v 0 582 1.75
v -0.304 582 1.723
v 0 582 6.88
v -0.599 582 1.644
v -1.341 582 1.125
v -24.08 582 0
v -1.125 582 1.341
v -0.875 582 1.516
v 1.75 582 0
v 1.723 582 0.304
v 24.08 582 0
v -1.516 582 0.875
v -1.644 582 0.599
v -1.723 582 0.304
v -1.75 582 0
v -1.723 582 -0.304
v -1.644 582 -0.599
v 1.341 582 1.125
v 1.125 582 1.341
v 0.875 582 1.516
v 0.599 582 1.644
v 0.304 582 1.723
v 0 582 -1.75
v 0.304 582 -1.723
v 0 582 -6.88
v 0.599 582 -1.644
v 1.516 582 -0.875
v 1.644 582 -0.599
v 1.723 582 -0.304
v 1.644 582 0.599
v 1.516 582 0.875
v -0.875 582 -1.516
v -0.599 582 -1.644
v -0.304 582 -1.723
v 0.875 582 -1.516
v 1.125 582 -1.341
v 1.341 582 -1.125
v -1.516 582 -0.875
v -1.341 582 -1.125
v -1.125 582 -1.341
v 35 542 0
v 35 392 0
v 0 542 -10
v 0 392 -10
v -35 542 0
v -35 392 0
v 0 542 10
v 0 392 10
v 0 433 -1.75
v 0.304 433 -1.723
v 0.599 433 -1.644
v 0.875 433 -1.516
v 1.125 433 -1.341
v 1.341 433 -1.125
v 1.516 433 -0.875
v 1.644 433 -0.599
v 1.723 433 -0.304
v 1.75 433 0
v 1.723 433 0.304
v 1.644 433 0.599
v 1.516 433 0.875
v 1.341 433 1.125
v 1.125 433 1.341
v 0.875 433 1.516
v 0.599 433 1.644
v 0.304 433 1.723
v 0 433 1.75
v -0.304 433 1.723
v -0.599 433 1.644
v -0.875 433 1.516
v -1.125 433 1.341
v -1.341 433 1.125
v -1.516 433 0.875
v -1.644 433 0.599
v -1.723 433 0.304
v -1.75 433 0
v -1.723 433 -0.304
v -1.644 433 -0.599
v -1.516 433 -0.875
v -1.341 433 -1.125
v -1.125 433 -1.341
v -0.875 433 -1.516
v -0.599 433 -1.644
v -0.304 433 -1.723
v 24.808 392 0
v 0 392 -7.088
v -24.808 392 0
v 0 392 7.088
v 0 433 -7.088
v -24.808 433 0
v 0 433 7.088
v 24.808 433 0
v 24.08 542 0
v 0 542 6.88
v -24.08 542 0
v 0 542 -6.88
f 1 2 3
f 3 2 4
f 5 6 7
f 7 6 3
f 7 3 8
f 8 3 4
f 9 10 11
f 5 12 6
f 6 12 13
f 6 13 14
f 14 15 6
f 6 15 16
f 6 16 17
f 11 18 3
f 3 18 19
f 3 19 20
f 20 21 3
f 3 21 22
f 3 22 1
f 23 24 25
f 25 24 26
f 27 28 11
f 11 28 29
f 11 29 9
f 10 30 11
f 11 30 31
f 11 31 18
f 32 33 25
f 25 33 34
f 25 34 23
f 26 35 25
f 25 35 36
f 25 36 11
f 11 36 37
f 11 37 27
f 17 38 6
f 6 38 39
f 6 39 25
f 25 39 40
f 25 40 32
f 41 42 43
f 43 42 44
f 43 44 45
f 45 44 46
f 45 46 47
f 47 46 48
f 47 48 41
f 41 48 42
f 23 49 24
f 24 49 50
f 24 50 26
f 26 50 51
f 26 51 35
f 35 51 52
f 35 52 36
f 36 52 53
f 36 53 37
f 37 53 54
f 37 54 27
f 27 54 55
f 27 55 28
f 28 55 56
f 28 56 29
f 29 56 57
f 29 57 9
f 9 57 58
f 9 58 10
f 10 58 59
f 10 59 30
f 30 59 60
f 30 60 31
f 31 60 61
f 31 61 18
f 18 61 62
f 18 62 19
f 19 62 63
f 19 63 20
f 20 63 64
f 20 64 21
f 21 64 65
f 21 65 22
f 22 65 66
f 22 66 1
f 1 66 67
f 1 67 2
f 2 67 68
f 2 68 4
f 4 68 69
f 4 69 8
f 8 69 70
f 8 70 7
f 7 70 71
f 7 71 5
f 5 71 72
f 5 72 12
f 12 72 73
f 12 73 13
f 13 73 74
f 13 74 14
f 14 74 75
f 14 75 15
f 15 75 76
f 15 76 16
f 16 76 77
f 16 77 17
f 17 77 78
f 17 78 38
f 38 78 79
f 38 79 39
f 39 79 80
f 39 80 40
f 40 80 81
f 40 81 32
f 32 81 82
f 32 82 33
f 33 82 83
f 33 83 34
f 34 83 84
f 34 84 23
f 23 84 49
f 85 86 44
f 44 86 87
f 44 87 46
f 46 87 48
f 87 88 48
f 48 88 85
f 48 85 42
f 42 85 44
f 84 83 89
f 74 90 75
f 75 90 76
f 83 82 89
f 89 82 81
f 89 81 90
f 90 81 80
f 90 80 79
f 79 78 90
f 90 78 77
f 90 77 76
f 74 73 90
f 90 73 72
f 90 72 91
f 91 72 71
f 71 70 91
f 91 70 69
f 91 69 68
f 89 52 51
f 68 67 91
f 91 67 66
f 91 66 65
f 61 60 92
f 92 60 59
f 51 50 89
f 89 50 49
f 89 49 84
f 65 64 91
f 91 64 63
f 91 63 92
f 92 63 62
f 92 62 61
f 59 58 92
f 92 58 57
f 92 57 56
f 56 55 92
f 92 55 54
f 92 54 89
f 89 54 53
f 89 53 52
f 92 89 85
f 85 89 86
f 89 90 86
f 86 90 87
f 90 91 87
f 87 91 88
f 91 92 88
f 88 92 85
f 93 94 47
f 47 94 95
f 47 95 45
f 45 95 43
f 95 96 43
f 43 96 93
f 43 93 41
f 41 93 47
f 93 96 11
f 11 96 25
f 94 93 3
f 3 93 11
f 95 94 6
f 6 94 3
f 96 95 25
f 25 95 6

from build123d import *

# Parameters (mm, degrees)
SWEEP_1_DEPTH            = 610
CUT_EXTRUDE_2_DEPTH      = 12
SKETCH_21_R              = 1.75
CUT_EXTRUDE_3_DEPTH      = 600
CUT_EXTRUDE_4_DEPTH      = 691.959477934
CUT_EXTRUDE_4_DEPTH_BACK = 691.959477934
SKETCH_26_OUTSIDE_W      = 208.38
SKETCH_26_OUTSIDE_H      = 816.38
SKETCH_26_OUTSIDE_W_2    = 70
SKETCH_26_OUTSIDE_H_2    = 190
CUT_EXTRUDE_5_DEPTH      = 41
SKETCH_28_OUTSIDE_W      = 112.694
SKETCH_28_OUTSIDE_H      = 62.694
CUT_EXTRUDE_7_DEPTH      = 40


# Read off the part's stored shape, not the designer's step: 扫描1
with BuildPart() as part:
    # 扫描1 outline → 扫描1 (new body)
    with BuildSketch(Plane(origin=(0, 0, 0), x_dir=(1, 0, 0), z_dir=(0, 1, 0))):
        Polygon((-35, 0), (35, 0), (0, 10), align=None)
    sweep_1 = extrude(amount=SWEEP_1_DEPTH)

    # 草图1 → 放样1 section 0
    with BuildSketch(Plane.XY, mode=Mode.PRIVATE) as loft_1_s0:
        with BuildLine():
            Line((-35, 610), (0, 690))
            Line((0, 690), (35, 610))
            Line((35, 610), (-35, 610))
        make_face()
    loft_1 = loft([Vertex(0, 610, -10), loft_1_s0.sketch])

    # 镜向1: 扫描1, 放样1 across plane
    add(sweep_1.mirror(Plane.XY))
    add(loft_1.mirror(Plane.XY))

    # 草图19 → 切除-拉伸2 (cut)
    with BuildSketch(Plane.XZ):
        Polygon((0, -10), (35, 0), (0, 10), (-35, 0), align=None)
    extrude(amount=-CUT_EXTRUDE_2_DEPTH, mode=Mode.SUBTRACT)

    # 草图21 → 切除-拉伸3 (cut)
    with BuildSketch(Plane.XZ.offset(-12)):
        with Locations(Location((0, 0, 0), (0, 0, 270))):
            Circle(SKETCH_21_R)
    extrude(amount=-CUT_EXTRUDE_3_DEPTH, mode=Mode.SUBTRACT)

    # 草图26 outside → 切除-拉伸4 (cut, two sides: drawn at the far end of the back side and taken through both)
    with BuildSketch(Plane.XY.offset(-CUT_EXTRUDE_4_DEPTH_BACK)):
        with Locations((0, 351)):
            Rectangle(SKETCH_26_OUTSIDE_W, SKETCH_26_OUTSIDE_H)
        with Locations((0, 487)):
            Rectangle(SKETCH_26_OUTSIDE_W_2, SKETCH_26_OUTSIDE_H_2, mode=Mode.SUBTRACT)
    extrude(amount=CUT_EXTRUDE_4_DEPTH + CUT_EXTRUDE_4_DEPTH_BACK, mode=Mode.SUBTRACT)

    # 草图27 → 切除-拉伸5 (cut)
    with BuildSketch(Plane.XZ.offset(-392)):
        Polygon((24.807846155, 0), (0, 7.087956044), (-24.807846155, 0), (0, -7.087956044), align=None)
    extrude(amount=-CUT_EXTRUDE_5_DEPTH, mode=Mode.SUBTRACT)

    # 草图28 outside → 切除-拉伸7 (cut)
    with BuildSketch(Plane(origin=(0, 582, 0), x_dir=(1, 0, 0), z_dir=(0, 1, 0))):
        Rectangle(SKETCH_28_OUTSIDE_W, SKETCH_28_OUTSIDE_H)
        Polygon((0, 6.879952905), (-24.079835166, 0), (0, -6.879952905), (24.079835166, 0), align=None, mode=Mode.SUBTRACT)
    extrude(amount=-CUT_EXTRUDE_7_DEPTH, mode=Mode.SUBTRACT)


solid = part.part
